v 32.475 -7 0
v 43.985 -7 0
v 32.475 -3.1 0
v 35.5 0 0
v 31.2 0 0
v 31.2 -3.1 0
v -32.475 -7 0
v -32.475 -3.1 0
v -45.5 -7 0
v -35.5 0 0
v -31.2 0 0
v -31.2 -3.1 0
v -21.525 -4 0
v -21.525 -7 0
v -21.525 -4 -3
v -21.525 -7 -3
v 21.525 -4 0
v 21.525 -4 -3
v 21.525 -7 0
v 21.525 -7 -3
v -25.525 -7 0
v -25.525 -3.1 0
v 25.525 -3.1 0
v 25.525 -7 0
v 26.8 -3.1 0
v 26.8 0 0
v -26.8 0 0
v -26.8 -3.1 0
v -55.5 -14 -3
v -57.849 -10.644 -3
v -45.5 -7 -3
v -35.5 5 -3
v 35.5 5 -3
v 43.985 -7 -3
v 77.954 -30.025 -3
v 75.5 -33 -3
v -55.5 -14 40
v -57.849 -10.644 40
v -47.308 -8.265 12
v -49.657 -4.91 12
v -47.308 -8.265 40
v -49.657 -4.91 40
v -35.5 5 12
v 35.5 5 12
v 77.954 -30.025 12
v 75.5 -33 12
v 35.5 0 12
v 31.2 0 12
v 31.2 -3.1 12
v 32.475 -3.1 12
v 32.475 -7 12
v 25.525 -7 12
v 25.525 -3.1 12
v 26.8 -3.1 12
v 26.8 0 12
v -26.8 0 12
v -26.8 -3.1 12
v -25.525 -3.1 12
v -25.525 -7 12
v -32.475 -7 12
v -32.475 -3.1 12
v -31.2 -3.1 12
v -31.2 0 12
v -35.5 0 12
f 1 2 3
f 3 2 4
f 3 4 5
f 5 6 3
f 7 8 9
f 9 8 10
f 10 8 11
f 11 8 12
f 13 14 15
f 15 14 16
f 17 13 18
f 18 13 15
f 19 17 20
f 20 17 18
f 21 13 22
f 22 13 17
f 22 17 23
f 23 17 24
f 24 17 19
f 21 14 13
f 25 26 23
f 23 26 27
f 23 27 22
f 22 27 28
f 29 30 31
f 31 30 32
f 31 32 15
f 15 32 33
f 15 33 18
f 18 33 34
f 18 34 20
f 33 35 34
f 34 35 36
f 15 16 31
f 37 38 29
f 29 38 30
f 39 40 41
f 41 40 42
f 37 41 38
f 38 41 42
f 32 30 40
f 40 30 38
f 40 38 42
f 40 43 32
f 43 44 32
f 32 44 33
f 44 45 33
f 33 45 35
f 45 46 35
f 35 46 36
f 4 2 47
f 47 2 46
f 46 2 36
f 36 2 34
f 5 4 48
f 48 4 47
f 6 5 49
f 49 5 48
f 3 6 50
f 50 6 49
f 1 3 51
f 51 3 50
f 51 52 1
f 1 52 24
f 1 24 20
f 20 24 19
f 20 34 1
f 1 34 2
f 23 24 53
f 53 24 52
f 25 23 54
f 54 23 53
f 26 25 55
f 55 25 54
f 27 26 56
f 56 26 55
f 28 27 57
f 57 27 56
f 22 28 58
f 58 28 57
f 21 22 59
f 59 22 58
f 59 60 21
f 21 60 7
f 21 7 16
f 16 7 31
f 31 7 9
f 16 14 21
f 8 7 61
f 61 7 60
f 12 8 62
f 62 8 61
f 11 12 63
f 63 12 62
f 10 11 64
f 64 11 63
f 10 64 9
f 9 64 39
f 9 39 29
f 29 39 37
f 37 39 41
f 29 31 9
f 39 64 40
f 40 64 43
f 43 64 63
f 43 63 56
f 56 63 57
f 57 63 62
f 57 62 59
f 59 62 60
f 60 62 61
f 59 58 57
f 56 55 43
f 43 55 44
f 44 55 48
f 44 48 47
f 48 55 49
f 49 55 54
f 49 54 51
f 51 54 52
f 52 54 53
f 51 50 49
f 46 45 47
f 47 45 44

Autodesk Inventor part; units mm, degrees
ref_plane "YZ Plane" through (0, 0, 0) normal (1, 0, 0) x (0, 1, 0)
ref_plane "XZ Plane" through (0, 0, 0) normal (0, 1, 0) x (-1, 0, 0)
ref_plane "XY Plane" through (0, 0, 0) normal (0, 0, 1) x (1, 0, 0)
sketch "Sketch2" plane through (0, 0, 0) normal (0, 0, 1) x (1, 0, 0)
  line L0 (-32.475, -3.1) -> (-25.525, -3.1)
  line L1 (-25.525, -3.1) -> (-25.525, -7)
  line L2 (-25.525, -7) -> (-32.475, -7)
  line L3 (-32.475, -7) -> (-32.475, -3.1)
  line L4 (-31.2, 0) -> (-26.8, 0)
  line L5 (-26.8, 0) -> (-26.8, -3.1)
  line L6 (-26.8, -3.1) -> (-31.2, -3.1)
  line L7 (-31.2, -3.1) -> (-31.2, 0)
  line L8 (-35.5, 0) -> (0, 0)
  line L9 (0, 5) -> (-35.5, 5)
  line L10 (-35.5, 5) -> (-35.5, 0)
  line L11 (-29, 6.5254) -> (-29, -10.3092) construction
  line L12 (0, -40.9051) -> (0, 14.4305) construction
  line L13 (32.475, -3.1) -> (25.525, -3.1)
  line L14 (25.525, -3.1) -> (25.525, -7)
  line L15 (25.525, -7) -> (32.475, -7)
  line L16 (32.475, -7) -> (32.475, -3.1)
  line L17 (31.2, 0) -> (26.8, 0)
  line L18 (26.8, 0) -> (26.8, -3.1)
  line L19 (26.8, -3.1) -> (31.2, -3.1)
  line L20 (31.2, -3.1) -> (31.2, 0)
  line L21 (35.5, 0) -> (0, 0)
  line L22 (0, 5) -> (35.5, 5)
  line L23 (35.5, 5) -> (35.5, 0)
  line L24 (29, 6.5254) -> (29, -10.3092) construction
  line L25 (-85.0097, 0) -> (105.1151, 0) construction
  line L26 (35.5, 5) -> (77.9544, -30.0249)
  line L27 (77.9544, -30.0249) -> (75.5, -33)
  line L28 (75.5, -33) -> (35.5, 0)
  line L29 (-35.5, 5) -> (35.5, 5)
  line L30 (35.5, 5) -> (35.5, -7)
  line L31 (35.5, -7) -> (-35.5, -7)
  line L32 (-35.5, -7) -> (-35.5, 5)
  line L33 (-35.5, 5) -> (-57.849, -10.6443)
  line L34 (-57.849, -10.6443) -> (-55.5, -14)
  line L35 (-55.5, -14) -> (-35.5, 0)
  line L36 (-49.6567, -4.9097) -> (-47.3077, -8.2654)
  line L37 (-21.525, -7) -> (-21.525, -4)
  line L38 (-21.525, -4) -> (0, -4)
  line L39 (21.525, -7) -> (21.525, -4)
  line L40 (21.525, -4) -> (0, -4)
  line L41 (-35.5, -7) -> (-45.5, -7)
  line L42 (35.5, -7) -> (43.9848, -7)
  point P0 (-13.25, 5)
  point P1 (-18.25, 5)
  point P2 (29, -7)
  dimension "d1" = 4.4
  dimension "d2" = 6.95
  dimension "d3" = 3.9
  dimension "d4" = 5
  dimension "d5" = 58
  dimension "d6" = 7
  dimension "d7" = 13
  dimension "d28" = 38
  dimension "d29" = 40
  dimension "d30" = 20
  dimension "d31" = 19
  dimension "d32" = 10
  dimension "d37" = 4
  dimension "d38" = 3
extrude "Extrusion1" add sketch "Sketch2" along normal blind 12 contours L0 L1 L2 L3 | L7 L4 L5 L0 | L8 L10 L9 L22 L23 L21 L17 L4 | L35 L36 L33 L10 | L17 L20 L13 L18 | L14 L13 L16 L15 | L26 L27 L28 L23
extrude "Extrusion2" add sketch "Sketch2" along normal blind 40 contours L35 L34 L33 L36
extrude "Extrusion3" add sketch "Sketch2" against normal blind 3 contours L3 L31 L32 L8 L7 L0 | L0 L1 L2 L3 | L7 L4 L5 L0 | L5 L8 L21 L18 L13 L14 L31 L39 L40 L38 L37 L1 L0 | L8 L10 L9 L22 L23 L21 L17 L4 | L41 L35 L32 | L35 L36 L33 L10 | L35 L34 L33 L36 | L17 L20 L13 L18 | L14 L13 L16 L15 | L21 L30 L31 L16 L13 L20 | L26 L27 L28 L23 | L28 L42 L30
properties part number "UnitreeGO2_railmount"
